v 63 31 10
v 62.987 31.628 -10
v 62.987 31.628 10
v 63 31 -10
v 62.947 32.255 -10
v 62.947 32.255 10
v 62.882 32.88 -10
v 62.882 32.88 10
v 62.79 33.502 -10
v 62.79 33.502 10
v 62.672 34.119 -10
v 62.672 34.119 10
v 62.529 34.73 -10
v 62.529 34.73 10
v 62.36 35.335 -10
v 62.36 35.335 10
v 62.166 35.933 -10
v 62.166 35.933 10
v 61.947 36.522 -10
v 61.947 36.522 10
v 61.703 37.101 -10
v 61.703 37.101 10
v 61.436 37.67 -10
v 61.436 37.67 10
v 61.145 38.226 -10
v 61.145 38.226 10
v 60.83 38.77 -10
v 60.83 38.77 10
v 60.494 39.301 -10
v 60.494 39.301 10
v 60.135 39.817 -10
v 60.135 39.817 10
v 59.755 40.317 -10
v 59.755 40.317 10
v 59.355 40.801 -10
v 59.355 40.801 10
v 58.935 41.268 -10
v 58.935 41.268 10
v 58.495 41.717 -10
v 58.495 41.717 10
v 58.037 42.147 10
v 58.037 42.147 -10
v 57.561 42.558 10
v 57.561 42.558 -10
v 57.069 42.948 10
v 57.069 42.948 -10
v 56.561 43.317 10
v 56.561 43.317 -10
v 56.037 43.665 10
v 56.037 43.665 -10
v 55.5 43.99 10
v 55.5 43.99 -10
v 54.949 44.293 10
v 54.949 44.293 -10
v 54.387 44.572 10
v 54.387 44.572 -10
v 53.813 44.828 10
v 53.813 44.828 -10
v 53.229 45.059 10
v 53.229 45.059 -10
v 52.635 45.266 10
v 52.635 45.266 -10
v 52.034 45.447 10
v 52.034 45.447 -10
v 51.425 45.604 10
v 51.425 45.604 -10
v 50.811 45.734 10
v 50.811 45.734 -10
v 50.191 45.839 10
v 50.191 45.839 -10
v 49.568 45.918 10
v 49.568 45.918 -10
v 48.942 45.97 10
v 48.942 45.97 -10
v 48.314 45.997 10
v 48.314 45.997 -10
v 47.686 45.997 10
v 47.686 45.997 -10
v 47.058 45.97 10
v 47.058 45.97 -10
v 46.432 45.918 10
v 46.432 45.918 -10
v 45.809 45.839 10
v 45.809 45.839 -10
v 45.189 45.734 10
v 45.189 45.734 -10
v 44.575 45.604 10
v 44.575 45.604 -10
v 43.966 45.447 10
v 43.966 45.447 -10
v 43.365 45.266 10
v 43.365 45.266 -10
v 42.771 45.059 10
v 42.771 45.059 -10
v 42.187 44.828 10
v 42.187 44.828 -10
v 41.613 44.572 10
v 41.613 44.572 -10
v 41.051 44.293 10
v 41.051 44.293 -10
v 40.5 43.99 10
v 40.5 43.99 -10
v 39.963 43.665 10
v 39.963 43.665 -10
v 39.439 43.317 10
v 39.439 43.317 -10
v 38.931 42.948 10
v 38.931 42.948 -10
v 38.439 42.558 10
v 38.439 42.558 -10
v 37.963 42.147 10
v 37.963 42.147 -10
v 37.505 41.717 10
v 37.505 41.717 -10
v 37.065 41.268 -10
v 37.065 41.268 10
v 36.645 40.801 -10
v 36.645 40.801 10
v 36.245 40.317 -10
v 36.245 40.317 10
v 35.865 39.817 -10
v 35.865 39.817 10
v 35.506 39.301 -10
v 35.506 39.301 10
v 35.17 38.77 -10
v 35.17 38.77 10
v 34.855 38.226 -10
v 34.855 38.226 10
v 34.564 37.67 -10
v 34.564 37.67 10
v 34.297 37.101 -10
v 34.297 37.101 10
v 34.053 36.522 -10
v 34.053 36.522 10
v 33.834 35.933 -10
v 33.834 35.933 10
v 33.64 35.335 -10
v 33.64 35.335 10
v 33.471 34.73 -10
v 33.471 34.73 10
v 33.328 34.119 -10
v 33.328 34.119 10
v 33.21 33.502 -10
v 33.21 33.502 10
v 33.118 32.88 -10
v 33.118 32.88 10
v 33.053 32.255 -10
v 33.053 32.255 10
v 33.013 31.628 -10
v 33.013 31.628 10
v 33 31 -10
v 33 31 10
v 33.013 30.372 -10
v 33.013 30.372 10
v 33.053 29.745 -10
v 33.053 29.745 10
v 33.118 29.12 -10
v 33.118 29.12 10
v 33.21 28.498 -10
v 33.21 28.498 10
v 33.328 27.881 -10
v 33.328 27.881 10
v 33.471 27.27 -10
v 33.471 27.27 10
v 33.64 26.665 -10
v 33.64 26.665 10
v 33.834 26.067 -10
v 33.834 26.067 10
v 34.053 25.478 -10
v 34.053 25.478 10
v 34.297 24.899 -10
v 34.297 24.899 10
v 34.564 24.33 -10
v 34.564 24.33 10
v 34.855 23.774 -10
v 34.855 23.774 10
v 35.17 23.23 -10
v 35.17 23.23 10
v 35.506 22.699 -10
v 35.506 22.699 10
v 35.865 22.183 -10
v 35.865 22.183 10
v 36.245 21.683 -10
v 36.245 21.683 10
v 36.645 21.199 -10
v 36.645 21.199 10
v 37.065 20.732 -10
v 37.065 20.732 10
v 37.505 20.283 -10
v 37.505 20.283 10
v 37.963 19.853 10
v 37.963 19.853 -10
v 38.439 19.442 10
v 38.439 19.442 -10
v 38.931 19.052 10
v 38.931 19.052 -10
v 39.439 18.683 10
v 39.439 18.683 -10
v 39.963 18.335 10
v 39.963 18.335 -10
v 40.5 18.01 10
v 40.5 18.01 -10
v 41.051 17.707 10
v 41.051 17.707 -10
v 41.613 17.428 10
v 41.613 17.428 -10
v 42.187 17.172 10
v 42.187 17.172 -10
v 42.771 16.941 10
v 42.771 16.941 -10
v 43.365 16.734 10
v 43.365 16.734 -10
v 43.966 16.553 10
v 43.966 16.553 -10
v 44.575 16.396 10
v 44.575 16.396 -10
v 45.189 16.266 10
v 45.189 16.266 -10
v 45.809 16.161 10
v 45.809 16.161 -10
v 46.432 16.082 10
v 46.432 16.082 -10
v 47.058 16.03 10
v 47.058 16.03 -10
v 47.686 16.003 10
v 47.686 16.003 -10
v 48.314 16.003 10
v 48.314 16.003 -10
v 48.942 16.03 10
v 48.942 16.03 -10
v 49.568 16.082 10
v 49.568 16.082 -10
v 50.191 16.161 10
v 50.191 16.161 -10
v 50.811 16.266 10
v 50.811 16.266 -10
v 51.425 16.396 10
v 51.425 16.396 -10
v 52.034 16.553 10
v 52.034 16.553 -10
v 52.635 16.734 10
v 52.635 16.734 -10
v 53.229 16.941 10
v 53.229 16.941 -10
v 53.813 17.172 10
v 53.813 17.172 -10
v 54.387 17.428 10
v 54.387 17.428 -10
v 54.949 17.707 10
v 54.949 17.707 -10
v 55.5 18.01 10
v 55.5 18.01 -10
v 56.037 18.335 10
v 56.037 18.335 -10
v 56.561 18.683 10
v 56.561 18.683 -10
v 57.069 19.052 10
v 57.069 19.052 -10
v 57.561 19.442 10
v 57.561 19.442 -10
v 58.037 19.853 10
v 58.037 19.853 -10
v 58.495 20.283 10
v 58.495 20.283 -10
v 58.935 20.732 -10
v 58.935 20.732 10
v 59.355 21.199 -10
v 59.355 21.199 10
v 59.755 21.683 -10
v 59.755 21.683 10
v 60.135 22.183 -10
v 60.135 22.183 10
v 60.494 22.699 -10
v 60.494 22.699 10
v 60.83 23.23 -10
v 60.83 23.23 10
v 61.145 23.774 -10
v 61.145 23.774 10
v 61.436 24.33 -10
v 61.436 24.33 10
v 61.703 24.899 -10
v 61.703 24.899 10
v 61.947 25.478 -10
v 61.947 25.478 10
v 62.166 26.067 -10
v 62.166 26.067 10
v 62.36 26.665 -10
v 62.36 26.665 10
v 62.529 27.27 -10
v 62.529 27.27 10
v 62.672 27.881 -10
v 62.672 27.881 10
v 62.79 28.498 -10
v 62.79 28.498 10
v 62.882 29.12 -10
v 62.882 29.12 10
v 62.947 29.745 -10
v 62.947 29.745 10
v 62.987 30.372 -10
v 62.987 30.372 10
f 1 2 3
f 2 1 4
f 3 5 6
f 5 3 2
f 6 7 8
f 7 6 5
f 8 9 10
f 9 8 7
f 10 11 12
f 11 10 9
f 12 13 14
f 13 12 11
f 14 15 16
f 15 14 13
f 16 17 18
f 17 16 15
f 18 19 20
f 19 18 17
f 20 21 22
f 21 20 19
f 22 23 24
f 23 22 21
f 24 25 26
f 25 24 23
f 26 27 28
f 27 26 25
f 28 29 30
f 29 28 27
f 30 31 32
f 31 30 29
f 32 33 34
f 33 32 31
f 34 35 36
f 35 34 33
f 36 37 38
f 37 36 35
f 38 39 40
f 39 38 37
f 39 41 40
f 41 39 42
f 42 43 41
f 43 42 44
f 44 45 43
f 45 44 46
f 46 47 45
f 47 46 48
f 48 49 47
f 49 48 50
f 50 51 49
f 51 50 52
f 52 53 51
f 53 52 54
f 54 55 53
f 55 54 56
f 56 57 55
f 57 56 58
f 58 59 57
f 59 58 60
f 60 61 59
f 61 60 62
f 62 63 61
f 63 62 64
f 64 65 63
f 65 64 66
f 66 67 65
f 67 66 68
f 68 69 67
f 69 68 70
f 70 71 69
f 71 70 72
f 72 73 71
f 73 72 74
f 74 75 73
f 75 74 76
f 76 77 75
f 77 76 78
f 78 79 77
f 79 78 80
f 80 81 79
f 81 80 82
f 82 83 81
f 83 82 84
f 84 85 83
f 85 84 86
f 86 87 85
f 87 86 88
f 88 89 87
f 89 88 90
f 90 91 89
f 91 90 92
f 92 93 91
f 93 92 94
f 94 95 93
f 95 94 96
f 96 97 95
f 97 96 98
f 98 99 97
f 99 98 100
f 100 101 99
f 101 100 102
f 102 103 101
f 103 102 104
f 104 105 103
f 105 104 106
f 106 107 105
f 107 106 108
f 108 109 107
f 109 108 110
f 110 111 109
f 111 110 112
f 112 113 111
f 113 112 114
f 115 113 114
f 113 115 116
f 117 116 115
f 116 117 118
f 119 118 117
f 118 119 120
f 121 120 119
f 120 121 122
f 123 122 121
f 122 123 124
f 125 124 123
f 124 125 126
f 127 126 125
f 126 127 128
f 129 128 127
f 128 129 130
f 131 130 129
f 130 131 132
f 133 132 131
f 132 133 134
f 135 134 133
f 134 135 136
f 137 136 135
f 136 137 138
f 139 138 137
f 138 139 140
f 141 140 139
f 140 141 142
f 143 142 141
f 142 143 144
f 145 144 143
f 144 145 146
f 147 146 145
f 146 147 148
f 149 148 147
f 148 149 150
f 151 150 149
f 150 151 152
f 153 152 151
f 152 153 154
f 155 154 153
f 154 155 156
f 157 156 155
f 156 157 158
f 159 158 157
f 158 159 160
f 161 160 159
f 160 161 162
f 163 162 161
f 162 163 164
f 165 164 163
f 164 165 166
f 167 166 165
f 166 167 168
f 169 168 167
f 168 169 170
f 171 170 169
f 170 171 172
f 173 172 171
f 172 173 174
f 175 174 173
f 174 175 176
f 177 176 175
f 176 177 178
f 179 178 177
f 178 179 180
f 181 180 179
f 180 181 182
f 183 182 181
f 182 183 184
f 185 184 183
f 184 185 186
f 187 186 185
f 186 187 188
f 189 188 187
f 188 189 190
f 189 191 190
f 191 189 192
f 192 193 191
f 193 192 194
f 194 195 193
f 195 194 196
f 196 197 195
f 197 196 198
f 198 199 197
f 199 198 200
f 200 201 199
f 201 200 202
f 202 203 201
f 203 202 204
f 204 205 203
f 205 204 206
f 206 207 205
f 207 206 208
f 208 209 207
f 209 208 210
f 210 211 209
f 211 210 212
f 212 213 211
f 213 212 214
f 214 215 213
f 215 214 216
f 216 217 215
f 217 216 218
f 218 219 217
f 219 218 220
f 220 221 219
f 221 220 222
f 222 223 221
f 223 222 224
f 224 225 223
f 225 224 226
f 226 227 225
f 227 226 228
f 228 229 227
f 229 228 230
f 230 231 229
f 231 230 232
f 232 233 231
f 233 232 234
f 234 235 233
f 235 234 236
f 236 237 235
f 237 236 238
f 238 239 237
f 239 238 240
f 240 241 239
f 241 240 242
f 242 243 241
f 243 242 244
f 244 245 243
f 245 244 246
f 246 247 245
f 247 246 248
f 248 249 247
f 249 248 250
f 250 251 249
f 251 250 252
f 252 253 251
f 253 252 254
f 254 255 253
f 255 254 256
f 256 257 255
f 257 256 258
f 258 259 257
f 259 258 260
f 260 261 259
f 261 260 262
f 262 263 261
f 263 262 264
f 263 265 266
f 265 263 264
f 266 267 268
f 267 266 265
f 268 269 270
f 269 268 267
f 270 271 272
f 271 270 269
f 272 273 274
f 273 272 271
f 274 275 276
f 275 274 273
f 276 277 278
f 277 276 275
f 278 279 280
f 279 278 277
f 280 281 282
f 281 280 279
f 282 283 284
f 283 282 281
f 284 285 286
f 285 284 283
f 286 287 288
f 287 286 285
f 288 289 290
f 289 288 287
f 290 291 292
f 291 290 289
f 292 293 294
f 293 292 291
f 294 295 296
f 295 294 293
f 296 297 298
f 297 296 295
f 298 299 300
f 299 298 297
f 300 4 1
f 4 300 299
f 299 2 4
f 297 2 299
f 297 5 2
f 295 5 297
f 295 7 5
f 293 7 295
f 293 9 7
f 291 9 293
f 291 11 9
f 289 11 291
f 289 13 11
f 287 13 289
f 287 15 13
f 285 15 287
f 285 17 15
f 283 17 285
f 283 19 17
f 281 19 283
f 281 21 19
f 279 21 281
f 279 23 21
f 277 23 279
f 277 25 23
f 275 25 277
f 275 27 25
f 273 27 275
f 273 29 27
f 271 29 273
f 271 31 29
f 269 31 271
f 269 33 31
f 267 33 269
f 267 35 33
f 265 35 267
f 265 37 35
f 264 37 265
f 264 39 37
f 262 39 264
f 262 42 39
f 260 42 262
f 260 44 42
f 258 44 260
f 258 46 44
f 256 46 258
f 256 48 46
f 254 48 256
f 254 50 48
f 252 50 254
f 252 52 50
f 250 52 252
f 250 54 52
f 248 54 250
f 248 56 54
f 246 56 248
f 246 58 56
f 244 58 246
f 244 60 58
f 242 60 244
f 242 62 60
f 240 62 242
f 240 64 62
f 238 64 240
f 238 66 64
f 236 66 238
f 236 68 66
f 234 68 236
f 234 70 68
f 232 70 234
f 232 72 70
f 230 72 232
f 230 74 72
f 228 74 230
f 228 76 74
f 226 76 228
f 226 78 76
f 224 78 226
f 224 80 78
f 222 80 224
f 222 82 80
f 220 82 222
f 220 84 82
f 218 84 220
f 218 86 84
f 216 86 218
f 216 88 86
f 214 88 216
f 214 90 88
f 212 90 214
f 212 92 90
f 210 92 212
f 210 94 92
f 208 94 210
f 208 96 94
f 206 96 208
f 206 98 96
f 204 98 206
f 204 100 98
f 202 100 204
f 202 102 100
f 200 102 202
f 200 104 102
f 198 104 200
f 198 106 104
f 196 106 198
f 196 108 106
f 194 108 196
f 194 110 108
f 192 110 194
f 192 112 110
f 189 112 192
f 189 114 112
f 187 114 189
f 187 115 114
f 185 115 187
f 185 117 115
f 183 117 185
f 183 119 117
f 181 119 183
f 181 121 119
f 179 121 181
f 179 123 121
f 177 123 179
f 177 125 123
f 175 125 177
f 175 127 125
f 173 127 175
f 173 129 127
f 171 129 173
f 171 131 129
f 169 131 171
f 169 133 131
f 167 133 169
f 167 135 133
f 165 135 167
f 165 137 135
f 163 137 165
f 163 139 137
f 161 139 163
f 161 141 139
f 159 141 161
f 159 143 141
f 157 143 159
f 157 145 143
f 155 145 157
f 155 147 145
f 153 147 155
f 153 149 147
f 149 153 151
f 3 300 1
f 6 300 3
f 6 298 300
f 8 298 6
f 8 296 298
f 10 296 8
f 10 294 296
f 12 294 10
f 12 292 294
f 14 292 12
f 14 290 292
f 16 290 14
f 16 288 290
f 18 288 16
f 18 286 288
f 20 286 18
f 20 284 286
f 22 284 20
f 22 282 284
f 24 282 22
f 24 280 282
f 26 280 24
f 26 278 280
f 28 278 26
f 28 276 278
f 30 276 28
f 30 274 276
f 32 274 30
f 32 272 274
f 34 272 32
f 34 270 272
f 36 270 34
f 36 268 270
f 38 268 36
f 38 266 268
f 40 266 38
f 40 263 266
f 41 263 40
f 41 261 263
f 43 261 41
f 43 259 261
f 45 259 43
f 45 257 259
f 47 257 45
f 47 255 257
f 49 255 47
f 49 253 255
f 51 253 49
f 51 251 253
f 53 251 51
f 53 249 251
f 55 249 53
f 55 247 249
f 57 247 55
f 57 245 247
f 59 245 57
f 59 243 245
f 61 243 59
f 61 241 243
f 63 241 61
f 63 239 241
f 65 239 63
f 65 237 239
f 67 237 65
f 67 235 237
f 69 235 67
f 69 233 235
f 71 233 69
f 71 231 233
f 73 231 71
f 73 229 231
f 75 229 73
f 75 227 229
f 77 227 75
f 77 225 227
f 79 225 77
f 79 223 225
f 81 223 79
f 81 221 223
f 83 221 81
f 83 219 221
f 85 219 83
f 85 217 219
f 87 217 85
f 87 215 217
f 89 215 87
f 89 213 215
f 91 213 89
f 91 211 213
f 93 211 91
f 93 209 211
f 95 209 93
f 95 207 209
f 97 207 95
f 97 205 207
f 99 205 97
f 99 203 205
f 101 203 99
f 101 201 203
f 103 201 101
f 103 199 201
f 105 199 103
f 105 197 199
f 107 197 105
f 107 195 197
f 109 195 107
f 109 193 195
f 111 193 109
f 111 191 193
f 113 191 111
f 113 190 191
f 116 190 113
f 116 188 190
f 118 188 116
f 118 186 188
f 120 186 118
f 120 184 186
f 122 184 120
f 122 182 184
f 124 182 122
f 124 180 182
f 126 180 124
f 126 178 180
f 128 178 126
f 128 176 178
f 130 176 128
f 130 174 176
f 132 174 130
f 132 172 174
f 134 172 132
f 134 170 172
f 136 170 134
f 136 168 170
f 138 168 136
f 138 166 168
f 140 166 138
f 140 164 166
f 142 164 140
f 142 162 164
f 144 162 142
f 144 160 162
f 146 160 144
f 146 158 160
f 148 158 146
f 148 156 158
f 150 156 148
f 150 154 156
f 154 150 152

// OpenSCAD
$fn = 150;

translate([48, 31, 0])
rotate([0, 0, 0])
cylinder(20, 15, 15, true);
